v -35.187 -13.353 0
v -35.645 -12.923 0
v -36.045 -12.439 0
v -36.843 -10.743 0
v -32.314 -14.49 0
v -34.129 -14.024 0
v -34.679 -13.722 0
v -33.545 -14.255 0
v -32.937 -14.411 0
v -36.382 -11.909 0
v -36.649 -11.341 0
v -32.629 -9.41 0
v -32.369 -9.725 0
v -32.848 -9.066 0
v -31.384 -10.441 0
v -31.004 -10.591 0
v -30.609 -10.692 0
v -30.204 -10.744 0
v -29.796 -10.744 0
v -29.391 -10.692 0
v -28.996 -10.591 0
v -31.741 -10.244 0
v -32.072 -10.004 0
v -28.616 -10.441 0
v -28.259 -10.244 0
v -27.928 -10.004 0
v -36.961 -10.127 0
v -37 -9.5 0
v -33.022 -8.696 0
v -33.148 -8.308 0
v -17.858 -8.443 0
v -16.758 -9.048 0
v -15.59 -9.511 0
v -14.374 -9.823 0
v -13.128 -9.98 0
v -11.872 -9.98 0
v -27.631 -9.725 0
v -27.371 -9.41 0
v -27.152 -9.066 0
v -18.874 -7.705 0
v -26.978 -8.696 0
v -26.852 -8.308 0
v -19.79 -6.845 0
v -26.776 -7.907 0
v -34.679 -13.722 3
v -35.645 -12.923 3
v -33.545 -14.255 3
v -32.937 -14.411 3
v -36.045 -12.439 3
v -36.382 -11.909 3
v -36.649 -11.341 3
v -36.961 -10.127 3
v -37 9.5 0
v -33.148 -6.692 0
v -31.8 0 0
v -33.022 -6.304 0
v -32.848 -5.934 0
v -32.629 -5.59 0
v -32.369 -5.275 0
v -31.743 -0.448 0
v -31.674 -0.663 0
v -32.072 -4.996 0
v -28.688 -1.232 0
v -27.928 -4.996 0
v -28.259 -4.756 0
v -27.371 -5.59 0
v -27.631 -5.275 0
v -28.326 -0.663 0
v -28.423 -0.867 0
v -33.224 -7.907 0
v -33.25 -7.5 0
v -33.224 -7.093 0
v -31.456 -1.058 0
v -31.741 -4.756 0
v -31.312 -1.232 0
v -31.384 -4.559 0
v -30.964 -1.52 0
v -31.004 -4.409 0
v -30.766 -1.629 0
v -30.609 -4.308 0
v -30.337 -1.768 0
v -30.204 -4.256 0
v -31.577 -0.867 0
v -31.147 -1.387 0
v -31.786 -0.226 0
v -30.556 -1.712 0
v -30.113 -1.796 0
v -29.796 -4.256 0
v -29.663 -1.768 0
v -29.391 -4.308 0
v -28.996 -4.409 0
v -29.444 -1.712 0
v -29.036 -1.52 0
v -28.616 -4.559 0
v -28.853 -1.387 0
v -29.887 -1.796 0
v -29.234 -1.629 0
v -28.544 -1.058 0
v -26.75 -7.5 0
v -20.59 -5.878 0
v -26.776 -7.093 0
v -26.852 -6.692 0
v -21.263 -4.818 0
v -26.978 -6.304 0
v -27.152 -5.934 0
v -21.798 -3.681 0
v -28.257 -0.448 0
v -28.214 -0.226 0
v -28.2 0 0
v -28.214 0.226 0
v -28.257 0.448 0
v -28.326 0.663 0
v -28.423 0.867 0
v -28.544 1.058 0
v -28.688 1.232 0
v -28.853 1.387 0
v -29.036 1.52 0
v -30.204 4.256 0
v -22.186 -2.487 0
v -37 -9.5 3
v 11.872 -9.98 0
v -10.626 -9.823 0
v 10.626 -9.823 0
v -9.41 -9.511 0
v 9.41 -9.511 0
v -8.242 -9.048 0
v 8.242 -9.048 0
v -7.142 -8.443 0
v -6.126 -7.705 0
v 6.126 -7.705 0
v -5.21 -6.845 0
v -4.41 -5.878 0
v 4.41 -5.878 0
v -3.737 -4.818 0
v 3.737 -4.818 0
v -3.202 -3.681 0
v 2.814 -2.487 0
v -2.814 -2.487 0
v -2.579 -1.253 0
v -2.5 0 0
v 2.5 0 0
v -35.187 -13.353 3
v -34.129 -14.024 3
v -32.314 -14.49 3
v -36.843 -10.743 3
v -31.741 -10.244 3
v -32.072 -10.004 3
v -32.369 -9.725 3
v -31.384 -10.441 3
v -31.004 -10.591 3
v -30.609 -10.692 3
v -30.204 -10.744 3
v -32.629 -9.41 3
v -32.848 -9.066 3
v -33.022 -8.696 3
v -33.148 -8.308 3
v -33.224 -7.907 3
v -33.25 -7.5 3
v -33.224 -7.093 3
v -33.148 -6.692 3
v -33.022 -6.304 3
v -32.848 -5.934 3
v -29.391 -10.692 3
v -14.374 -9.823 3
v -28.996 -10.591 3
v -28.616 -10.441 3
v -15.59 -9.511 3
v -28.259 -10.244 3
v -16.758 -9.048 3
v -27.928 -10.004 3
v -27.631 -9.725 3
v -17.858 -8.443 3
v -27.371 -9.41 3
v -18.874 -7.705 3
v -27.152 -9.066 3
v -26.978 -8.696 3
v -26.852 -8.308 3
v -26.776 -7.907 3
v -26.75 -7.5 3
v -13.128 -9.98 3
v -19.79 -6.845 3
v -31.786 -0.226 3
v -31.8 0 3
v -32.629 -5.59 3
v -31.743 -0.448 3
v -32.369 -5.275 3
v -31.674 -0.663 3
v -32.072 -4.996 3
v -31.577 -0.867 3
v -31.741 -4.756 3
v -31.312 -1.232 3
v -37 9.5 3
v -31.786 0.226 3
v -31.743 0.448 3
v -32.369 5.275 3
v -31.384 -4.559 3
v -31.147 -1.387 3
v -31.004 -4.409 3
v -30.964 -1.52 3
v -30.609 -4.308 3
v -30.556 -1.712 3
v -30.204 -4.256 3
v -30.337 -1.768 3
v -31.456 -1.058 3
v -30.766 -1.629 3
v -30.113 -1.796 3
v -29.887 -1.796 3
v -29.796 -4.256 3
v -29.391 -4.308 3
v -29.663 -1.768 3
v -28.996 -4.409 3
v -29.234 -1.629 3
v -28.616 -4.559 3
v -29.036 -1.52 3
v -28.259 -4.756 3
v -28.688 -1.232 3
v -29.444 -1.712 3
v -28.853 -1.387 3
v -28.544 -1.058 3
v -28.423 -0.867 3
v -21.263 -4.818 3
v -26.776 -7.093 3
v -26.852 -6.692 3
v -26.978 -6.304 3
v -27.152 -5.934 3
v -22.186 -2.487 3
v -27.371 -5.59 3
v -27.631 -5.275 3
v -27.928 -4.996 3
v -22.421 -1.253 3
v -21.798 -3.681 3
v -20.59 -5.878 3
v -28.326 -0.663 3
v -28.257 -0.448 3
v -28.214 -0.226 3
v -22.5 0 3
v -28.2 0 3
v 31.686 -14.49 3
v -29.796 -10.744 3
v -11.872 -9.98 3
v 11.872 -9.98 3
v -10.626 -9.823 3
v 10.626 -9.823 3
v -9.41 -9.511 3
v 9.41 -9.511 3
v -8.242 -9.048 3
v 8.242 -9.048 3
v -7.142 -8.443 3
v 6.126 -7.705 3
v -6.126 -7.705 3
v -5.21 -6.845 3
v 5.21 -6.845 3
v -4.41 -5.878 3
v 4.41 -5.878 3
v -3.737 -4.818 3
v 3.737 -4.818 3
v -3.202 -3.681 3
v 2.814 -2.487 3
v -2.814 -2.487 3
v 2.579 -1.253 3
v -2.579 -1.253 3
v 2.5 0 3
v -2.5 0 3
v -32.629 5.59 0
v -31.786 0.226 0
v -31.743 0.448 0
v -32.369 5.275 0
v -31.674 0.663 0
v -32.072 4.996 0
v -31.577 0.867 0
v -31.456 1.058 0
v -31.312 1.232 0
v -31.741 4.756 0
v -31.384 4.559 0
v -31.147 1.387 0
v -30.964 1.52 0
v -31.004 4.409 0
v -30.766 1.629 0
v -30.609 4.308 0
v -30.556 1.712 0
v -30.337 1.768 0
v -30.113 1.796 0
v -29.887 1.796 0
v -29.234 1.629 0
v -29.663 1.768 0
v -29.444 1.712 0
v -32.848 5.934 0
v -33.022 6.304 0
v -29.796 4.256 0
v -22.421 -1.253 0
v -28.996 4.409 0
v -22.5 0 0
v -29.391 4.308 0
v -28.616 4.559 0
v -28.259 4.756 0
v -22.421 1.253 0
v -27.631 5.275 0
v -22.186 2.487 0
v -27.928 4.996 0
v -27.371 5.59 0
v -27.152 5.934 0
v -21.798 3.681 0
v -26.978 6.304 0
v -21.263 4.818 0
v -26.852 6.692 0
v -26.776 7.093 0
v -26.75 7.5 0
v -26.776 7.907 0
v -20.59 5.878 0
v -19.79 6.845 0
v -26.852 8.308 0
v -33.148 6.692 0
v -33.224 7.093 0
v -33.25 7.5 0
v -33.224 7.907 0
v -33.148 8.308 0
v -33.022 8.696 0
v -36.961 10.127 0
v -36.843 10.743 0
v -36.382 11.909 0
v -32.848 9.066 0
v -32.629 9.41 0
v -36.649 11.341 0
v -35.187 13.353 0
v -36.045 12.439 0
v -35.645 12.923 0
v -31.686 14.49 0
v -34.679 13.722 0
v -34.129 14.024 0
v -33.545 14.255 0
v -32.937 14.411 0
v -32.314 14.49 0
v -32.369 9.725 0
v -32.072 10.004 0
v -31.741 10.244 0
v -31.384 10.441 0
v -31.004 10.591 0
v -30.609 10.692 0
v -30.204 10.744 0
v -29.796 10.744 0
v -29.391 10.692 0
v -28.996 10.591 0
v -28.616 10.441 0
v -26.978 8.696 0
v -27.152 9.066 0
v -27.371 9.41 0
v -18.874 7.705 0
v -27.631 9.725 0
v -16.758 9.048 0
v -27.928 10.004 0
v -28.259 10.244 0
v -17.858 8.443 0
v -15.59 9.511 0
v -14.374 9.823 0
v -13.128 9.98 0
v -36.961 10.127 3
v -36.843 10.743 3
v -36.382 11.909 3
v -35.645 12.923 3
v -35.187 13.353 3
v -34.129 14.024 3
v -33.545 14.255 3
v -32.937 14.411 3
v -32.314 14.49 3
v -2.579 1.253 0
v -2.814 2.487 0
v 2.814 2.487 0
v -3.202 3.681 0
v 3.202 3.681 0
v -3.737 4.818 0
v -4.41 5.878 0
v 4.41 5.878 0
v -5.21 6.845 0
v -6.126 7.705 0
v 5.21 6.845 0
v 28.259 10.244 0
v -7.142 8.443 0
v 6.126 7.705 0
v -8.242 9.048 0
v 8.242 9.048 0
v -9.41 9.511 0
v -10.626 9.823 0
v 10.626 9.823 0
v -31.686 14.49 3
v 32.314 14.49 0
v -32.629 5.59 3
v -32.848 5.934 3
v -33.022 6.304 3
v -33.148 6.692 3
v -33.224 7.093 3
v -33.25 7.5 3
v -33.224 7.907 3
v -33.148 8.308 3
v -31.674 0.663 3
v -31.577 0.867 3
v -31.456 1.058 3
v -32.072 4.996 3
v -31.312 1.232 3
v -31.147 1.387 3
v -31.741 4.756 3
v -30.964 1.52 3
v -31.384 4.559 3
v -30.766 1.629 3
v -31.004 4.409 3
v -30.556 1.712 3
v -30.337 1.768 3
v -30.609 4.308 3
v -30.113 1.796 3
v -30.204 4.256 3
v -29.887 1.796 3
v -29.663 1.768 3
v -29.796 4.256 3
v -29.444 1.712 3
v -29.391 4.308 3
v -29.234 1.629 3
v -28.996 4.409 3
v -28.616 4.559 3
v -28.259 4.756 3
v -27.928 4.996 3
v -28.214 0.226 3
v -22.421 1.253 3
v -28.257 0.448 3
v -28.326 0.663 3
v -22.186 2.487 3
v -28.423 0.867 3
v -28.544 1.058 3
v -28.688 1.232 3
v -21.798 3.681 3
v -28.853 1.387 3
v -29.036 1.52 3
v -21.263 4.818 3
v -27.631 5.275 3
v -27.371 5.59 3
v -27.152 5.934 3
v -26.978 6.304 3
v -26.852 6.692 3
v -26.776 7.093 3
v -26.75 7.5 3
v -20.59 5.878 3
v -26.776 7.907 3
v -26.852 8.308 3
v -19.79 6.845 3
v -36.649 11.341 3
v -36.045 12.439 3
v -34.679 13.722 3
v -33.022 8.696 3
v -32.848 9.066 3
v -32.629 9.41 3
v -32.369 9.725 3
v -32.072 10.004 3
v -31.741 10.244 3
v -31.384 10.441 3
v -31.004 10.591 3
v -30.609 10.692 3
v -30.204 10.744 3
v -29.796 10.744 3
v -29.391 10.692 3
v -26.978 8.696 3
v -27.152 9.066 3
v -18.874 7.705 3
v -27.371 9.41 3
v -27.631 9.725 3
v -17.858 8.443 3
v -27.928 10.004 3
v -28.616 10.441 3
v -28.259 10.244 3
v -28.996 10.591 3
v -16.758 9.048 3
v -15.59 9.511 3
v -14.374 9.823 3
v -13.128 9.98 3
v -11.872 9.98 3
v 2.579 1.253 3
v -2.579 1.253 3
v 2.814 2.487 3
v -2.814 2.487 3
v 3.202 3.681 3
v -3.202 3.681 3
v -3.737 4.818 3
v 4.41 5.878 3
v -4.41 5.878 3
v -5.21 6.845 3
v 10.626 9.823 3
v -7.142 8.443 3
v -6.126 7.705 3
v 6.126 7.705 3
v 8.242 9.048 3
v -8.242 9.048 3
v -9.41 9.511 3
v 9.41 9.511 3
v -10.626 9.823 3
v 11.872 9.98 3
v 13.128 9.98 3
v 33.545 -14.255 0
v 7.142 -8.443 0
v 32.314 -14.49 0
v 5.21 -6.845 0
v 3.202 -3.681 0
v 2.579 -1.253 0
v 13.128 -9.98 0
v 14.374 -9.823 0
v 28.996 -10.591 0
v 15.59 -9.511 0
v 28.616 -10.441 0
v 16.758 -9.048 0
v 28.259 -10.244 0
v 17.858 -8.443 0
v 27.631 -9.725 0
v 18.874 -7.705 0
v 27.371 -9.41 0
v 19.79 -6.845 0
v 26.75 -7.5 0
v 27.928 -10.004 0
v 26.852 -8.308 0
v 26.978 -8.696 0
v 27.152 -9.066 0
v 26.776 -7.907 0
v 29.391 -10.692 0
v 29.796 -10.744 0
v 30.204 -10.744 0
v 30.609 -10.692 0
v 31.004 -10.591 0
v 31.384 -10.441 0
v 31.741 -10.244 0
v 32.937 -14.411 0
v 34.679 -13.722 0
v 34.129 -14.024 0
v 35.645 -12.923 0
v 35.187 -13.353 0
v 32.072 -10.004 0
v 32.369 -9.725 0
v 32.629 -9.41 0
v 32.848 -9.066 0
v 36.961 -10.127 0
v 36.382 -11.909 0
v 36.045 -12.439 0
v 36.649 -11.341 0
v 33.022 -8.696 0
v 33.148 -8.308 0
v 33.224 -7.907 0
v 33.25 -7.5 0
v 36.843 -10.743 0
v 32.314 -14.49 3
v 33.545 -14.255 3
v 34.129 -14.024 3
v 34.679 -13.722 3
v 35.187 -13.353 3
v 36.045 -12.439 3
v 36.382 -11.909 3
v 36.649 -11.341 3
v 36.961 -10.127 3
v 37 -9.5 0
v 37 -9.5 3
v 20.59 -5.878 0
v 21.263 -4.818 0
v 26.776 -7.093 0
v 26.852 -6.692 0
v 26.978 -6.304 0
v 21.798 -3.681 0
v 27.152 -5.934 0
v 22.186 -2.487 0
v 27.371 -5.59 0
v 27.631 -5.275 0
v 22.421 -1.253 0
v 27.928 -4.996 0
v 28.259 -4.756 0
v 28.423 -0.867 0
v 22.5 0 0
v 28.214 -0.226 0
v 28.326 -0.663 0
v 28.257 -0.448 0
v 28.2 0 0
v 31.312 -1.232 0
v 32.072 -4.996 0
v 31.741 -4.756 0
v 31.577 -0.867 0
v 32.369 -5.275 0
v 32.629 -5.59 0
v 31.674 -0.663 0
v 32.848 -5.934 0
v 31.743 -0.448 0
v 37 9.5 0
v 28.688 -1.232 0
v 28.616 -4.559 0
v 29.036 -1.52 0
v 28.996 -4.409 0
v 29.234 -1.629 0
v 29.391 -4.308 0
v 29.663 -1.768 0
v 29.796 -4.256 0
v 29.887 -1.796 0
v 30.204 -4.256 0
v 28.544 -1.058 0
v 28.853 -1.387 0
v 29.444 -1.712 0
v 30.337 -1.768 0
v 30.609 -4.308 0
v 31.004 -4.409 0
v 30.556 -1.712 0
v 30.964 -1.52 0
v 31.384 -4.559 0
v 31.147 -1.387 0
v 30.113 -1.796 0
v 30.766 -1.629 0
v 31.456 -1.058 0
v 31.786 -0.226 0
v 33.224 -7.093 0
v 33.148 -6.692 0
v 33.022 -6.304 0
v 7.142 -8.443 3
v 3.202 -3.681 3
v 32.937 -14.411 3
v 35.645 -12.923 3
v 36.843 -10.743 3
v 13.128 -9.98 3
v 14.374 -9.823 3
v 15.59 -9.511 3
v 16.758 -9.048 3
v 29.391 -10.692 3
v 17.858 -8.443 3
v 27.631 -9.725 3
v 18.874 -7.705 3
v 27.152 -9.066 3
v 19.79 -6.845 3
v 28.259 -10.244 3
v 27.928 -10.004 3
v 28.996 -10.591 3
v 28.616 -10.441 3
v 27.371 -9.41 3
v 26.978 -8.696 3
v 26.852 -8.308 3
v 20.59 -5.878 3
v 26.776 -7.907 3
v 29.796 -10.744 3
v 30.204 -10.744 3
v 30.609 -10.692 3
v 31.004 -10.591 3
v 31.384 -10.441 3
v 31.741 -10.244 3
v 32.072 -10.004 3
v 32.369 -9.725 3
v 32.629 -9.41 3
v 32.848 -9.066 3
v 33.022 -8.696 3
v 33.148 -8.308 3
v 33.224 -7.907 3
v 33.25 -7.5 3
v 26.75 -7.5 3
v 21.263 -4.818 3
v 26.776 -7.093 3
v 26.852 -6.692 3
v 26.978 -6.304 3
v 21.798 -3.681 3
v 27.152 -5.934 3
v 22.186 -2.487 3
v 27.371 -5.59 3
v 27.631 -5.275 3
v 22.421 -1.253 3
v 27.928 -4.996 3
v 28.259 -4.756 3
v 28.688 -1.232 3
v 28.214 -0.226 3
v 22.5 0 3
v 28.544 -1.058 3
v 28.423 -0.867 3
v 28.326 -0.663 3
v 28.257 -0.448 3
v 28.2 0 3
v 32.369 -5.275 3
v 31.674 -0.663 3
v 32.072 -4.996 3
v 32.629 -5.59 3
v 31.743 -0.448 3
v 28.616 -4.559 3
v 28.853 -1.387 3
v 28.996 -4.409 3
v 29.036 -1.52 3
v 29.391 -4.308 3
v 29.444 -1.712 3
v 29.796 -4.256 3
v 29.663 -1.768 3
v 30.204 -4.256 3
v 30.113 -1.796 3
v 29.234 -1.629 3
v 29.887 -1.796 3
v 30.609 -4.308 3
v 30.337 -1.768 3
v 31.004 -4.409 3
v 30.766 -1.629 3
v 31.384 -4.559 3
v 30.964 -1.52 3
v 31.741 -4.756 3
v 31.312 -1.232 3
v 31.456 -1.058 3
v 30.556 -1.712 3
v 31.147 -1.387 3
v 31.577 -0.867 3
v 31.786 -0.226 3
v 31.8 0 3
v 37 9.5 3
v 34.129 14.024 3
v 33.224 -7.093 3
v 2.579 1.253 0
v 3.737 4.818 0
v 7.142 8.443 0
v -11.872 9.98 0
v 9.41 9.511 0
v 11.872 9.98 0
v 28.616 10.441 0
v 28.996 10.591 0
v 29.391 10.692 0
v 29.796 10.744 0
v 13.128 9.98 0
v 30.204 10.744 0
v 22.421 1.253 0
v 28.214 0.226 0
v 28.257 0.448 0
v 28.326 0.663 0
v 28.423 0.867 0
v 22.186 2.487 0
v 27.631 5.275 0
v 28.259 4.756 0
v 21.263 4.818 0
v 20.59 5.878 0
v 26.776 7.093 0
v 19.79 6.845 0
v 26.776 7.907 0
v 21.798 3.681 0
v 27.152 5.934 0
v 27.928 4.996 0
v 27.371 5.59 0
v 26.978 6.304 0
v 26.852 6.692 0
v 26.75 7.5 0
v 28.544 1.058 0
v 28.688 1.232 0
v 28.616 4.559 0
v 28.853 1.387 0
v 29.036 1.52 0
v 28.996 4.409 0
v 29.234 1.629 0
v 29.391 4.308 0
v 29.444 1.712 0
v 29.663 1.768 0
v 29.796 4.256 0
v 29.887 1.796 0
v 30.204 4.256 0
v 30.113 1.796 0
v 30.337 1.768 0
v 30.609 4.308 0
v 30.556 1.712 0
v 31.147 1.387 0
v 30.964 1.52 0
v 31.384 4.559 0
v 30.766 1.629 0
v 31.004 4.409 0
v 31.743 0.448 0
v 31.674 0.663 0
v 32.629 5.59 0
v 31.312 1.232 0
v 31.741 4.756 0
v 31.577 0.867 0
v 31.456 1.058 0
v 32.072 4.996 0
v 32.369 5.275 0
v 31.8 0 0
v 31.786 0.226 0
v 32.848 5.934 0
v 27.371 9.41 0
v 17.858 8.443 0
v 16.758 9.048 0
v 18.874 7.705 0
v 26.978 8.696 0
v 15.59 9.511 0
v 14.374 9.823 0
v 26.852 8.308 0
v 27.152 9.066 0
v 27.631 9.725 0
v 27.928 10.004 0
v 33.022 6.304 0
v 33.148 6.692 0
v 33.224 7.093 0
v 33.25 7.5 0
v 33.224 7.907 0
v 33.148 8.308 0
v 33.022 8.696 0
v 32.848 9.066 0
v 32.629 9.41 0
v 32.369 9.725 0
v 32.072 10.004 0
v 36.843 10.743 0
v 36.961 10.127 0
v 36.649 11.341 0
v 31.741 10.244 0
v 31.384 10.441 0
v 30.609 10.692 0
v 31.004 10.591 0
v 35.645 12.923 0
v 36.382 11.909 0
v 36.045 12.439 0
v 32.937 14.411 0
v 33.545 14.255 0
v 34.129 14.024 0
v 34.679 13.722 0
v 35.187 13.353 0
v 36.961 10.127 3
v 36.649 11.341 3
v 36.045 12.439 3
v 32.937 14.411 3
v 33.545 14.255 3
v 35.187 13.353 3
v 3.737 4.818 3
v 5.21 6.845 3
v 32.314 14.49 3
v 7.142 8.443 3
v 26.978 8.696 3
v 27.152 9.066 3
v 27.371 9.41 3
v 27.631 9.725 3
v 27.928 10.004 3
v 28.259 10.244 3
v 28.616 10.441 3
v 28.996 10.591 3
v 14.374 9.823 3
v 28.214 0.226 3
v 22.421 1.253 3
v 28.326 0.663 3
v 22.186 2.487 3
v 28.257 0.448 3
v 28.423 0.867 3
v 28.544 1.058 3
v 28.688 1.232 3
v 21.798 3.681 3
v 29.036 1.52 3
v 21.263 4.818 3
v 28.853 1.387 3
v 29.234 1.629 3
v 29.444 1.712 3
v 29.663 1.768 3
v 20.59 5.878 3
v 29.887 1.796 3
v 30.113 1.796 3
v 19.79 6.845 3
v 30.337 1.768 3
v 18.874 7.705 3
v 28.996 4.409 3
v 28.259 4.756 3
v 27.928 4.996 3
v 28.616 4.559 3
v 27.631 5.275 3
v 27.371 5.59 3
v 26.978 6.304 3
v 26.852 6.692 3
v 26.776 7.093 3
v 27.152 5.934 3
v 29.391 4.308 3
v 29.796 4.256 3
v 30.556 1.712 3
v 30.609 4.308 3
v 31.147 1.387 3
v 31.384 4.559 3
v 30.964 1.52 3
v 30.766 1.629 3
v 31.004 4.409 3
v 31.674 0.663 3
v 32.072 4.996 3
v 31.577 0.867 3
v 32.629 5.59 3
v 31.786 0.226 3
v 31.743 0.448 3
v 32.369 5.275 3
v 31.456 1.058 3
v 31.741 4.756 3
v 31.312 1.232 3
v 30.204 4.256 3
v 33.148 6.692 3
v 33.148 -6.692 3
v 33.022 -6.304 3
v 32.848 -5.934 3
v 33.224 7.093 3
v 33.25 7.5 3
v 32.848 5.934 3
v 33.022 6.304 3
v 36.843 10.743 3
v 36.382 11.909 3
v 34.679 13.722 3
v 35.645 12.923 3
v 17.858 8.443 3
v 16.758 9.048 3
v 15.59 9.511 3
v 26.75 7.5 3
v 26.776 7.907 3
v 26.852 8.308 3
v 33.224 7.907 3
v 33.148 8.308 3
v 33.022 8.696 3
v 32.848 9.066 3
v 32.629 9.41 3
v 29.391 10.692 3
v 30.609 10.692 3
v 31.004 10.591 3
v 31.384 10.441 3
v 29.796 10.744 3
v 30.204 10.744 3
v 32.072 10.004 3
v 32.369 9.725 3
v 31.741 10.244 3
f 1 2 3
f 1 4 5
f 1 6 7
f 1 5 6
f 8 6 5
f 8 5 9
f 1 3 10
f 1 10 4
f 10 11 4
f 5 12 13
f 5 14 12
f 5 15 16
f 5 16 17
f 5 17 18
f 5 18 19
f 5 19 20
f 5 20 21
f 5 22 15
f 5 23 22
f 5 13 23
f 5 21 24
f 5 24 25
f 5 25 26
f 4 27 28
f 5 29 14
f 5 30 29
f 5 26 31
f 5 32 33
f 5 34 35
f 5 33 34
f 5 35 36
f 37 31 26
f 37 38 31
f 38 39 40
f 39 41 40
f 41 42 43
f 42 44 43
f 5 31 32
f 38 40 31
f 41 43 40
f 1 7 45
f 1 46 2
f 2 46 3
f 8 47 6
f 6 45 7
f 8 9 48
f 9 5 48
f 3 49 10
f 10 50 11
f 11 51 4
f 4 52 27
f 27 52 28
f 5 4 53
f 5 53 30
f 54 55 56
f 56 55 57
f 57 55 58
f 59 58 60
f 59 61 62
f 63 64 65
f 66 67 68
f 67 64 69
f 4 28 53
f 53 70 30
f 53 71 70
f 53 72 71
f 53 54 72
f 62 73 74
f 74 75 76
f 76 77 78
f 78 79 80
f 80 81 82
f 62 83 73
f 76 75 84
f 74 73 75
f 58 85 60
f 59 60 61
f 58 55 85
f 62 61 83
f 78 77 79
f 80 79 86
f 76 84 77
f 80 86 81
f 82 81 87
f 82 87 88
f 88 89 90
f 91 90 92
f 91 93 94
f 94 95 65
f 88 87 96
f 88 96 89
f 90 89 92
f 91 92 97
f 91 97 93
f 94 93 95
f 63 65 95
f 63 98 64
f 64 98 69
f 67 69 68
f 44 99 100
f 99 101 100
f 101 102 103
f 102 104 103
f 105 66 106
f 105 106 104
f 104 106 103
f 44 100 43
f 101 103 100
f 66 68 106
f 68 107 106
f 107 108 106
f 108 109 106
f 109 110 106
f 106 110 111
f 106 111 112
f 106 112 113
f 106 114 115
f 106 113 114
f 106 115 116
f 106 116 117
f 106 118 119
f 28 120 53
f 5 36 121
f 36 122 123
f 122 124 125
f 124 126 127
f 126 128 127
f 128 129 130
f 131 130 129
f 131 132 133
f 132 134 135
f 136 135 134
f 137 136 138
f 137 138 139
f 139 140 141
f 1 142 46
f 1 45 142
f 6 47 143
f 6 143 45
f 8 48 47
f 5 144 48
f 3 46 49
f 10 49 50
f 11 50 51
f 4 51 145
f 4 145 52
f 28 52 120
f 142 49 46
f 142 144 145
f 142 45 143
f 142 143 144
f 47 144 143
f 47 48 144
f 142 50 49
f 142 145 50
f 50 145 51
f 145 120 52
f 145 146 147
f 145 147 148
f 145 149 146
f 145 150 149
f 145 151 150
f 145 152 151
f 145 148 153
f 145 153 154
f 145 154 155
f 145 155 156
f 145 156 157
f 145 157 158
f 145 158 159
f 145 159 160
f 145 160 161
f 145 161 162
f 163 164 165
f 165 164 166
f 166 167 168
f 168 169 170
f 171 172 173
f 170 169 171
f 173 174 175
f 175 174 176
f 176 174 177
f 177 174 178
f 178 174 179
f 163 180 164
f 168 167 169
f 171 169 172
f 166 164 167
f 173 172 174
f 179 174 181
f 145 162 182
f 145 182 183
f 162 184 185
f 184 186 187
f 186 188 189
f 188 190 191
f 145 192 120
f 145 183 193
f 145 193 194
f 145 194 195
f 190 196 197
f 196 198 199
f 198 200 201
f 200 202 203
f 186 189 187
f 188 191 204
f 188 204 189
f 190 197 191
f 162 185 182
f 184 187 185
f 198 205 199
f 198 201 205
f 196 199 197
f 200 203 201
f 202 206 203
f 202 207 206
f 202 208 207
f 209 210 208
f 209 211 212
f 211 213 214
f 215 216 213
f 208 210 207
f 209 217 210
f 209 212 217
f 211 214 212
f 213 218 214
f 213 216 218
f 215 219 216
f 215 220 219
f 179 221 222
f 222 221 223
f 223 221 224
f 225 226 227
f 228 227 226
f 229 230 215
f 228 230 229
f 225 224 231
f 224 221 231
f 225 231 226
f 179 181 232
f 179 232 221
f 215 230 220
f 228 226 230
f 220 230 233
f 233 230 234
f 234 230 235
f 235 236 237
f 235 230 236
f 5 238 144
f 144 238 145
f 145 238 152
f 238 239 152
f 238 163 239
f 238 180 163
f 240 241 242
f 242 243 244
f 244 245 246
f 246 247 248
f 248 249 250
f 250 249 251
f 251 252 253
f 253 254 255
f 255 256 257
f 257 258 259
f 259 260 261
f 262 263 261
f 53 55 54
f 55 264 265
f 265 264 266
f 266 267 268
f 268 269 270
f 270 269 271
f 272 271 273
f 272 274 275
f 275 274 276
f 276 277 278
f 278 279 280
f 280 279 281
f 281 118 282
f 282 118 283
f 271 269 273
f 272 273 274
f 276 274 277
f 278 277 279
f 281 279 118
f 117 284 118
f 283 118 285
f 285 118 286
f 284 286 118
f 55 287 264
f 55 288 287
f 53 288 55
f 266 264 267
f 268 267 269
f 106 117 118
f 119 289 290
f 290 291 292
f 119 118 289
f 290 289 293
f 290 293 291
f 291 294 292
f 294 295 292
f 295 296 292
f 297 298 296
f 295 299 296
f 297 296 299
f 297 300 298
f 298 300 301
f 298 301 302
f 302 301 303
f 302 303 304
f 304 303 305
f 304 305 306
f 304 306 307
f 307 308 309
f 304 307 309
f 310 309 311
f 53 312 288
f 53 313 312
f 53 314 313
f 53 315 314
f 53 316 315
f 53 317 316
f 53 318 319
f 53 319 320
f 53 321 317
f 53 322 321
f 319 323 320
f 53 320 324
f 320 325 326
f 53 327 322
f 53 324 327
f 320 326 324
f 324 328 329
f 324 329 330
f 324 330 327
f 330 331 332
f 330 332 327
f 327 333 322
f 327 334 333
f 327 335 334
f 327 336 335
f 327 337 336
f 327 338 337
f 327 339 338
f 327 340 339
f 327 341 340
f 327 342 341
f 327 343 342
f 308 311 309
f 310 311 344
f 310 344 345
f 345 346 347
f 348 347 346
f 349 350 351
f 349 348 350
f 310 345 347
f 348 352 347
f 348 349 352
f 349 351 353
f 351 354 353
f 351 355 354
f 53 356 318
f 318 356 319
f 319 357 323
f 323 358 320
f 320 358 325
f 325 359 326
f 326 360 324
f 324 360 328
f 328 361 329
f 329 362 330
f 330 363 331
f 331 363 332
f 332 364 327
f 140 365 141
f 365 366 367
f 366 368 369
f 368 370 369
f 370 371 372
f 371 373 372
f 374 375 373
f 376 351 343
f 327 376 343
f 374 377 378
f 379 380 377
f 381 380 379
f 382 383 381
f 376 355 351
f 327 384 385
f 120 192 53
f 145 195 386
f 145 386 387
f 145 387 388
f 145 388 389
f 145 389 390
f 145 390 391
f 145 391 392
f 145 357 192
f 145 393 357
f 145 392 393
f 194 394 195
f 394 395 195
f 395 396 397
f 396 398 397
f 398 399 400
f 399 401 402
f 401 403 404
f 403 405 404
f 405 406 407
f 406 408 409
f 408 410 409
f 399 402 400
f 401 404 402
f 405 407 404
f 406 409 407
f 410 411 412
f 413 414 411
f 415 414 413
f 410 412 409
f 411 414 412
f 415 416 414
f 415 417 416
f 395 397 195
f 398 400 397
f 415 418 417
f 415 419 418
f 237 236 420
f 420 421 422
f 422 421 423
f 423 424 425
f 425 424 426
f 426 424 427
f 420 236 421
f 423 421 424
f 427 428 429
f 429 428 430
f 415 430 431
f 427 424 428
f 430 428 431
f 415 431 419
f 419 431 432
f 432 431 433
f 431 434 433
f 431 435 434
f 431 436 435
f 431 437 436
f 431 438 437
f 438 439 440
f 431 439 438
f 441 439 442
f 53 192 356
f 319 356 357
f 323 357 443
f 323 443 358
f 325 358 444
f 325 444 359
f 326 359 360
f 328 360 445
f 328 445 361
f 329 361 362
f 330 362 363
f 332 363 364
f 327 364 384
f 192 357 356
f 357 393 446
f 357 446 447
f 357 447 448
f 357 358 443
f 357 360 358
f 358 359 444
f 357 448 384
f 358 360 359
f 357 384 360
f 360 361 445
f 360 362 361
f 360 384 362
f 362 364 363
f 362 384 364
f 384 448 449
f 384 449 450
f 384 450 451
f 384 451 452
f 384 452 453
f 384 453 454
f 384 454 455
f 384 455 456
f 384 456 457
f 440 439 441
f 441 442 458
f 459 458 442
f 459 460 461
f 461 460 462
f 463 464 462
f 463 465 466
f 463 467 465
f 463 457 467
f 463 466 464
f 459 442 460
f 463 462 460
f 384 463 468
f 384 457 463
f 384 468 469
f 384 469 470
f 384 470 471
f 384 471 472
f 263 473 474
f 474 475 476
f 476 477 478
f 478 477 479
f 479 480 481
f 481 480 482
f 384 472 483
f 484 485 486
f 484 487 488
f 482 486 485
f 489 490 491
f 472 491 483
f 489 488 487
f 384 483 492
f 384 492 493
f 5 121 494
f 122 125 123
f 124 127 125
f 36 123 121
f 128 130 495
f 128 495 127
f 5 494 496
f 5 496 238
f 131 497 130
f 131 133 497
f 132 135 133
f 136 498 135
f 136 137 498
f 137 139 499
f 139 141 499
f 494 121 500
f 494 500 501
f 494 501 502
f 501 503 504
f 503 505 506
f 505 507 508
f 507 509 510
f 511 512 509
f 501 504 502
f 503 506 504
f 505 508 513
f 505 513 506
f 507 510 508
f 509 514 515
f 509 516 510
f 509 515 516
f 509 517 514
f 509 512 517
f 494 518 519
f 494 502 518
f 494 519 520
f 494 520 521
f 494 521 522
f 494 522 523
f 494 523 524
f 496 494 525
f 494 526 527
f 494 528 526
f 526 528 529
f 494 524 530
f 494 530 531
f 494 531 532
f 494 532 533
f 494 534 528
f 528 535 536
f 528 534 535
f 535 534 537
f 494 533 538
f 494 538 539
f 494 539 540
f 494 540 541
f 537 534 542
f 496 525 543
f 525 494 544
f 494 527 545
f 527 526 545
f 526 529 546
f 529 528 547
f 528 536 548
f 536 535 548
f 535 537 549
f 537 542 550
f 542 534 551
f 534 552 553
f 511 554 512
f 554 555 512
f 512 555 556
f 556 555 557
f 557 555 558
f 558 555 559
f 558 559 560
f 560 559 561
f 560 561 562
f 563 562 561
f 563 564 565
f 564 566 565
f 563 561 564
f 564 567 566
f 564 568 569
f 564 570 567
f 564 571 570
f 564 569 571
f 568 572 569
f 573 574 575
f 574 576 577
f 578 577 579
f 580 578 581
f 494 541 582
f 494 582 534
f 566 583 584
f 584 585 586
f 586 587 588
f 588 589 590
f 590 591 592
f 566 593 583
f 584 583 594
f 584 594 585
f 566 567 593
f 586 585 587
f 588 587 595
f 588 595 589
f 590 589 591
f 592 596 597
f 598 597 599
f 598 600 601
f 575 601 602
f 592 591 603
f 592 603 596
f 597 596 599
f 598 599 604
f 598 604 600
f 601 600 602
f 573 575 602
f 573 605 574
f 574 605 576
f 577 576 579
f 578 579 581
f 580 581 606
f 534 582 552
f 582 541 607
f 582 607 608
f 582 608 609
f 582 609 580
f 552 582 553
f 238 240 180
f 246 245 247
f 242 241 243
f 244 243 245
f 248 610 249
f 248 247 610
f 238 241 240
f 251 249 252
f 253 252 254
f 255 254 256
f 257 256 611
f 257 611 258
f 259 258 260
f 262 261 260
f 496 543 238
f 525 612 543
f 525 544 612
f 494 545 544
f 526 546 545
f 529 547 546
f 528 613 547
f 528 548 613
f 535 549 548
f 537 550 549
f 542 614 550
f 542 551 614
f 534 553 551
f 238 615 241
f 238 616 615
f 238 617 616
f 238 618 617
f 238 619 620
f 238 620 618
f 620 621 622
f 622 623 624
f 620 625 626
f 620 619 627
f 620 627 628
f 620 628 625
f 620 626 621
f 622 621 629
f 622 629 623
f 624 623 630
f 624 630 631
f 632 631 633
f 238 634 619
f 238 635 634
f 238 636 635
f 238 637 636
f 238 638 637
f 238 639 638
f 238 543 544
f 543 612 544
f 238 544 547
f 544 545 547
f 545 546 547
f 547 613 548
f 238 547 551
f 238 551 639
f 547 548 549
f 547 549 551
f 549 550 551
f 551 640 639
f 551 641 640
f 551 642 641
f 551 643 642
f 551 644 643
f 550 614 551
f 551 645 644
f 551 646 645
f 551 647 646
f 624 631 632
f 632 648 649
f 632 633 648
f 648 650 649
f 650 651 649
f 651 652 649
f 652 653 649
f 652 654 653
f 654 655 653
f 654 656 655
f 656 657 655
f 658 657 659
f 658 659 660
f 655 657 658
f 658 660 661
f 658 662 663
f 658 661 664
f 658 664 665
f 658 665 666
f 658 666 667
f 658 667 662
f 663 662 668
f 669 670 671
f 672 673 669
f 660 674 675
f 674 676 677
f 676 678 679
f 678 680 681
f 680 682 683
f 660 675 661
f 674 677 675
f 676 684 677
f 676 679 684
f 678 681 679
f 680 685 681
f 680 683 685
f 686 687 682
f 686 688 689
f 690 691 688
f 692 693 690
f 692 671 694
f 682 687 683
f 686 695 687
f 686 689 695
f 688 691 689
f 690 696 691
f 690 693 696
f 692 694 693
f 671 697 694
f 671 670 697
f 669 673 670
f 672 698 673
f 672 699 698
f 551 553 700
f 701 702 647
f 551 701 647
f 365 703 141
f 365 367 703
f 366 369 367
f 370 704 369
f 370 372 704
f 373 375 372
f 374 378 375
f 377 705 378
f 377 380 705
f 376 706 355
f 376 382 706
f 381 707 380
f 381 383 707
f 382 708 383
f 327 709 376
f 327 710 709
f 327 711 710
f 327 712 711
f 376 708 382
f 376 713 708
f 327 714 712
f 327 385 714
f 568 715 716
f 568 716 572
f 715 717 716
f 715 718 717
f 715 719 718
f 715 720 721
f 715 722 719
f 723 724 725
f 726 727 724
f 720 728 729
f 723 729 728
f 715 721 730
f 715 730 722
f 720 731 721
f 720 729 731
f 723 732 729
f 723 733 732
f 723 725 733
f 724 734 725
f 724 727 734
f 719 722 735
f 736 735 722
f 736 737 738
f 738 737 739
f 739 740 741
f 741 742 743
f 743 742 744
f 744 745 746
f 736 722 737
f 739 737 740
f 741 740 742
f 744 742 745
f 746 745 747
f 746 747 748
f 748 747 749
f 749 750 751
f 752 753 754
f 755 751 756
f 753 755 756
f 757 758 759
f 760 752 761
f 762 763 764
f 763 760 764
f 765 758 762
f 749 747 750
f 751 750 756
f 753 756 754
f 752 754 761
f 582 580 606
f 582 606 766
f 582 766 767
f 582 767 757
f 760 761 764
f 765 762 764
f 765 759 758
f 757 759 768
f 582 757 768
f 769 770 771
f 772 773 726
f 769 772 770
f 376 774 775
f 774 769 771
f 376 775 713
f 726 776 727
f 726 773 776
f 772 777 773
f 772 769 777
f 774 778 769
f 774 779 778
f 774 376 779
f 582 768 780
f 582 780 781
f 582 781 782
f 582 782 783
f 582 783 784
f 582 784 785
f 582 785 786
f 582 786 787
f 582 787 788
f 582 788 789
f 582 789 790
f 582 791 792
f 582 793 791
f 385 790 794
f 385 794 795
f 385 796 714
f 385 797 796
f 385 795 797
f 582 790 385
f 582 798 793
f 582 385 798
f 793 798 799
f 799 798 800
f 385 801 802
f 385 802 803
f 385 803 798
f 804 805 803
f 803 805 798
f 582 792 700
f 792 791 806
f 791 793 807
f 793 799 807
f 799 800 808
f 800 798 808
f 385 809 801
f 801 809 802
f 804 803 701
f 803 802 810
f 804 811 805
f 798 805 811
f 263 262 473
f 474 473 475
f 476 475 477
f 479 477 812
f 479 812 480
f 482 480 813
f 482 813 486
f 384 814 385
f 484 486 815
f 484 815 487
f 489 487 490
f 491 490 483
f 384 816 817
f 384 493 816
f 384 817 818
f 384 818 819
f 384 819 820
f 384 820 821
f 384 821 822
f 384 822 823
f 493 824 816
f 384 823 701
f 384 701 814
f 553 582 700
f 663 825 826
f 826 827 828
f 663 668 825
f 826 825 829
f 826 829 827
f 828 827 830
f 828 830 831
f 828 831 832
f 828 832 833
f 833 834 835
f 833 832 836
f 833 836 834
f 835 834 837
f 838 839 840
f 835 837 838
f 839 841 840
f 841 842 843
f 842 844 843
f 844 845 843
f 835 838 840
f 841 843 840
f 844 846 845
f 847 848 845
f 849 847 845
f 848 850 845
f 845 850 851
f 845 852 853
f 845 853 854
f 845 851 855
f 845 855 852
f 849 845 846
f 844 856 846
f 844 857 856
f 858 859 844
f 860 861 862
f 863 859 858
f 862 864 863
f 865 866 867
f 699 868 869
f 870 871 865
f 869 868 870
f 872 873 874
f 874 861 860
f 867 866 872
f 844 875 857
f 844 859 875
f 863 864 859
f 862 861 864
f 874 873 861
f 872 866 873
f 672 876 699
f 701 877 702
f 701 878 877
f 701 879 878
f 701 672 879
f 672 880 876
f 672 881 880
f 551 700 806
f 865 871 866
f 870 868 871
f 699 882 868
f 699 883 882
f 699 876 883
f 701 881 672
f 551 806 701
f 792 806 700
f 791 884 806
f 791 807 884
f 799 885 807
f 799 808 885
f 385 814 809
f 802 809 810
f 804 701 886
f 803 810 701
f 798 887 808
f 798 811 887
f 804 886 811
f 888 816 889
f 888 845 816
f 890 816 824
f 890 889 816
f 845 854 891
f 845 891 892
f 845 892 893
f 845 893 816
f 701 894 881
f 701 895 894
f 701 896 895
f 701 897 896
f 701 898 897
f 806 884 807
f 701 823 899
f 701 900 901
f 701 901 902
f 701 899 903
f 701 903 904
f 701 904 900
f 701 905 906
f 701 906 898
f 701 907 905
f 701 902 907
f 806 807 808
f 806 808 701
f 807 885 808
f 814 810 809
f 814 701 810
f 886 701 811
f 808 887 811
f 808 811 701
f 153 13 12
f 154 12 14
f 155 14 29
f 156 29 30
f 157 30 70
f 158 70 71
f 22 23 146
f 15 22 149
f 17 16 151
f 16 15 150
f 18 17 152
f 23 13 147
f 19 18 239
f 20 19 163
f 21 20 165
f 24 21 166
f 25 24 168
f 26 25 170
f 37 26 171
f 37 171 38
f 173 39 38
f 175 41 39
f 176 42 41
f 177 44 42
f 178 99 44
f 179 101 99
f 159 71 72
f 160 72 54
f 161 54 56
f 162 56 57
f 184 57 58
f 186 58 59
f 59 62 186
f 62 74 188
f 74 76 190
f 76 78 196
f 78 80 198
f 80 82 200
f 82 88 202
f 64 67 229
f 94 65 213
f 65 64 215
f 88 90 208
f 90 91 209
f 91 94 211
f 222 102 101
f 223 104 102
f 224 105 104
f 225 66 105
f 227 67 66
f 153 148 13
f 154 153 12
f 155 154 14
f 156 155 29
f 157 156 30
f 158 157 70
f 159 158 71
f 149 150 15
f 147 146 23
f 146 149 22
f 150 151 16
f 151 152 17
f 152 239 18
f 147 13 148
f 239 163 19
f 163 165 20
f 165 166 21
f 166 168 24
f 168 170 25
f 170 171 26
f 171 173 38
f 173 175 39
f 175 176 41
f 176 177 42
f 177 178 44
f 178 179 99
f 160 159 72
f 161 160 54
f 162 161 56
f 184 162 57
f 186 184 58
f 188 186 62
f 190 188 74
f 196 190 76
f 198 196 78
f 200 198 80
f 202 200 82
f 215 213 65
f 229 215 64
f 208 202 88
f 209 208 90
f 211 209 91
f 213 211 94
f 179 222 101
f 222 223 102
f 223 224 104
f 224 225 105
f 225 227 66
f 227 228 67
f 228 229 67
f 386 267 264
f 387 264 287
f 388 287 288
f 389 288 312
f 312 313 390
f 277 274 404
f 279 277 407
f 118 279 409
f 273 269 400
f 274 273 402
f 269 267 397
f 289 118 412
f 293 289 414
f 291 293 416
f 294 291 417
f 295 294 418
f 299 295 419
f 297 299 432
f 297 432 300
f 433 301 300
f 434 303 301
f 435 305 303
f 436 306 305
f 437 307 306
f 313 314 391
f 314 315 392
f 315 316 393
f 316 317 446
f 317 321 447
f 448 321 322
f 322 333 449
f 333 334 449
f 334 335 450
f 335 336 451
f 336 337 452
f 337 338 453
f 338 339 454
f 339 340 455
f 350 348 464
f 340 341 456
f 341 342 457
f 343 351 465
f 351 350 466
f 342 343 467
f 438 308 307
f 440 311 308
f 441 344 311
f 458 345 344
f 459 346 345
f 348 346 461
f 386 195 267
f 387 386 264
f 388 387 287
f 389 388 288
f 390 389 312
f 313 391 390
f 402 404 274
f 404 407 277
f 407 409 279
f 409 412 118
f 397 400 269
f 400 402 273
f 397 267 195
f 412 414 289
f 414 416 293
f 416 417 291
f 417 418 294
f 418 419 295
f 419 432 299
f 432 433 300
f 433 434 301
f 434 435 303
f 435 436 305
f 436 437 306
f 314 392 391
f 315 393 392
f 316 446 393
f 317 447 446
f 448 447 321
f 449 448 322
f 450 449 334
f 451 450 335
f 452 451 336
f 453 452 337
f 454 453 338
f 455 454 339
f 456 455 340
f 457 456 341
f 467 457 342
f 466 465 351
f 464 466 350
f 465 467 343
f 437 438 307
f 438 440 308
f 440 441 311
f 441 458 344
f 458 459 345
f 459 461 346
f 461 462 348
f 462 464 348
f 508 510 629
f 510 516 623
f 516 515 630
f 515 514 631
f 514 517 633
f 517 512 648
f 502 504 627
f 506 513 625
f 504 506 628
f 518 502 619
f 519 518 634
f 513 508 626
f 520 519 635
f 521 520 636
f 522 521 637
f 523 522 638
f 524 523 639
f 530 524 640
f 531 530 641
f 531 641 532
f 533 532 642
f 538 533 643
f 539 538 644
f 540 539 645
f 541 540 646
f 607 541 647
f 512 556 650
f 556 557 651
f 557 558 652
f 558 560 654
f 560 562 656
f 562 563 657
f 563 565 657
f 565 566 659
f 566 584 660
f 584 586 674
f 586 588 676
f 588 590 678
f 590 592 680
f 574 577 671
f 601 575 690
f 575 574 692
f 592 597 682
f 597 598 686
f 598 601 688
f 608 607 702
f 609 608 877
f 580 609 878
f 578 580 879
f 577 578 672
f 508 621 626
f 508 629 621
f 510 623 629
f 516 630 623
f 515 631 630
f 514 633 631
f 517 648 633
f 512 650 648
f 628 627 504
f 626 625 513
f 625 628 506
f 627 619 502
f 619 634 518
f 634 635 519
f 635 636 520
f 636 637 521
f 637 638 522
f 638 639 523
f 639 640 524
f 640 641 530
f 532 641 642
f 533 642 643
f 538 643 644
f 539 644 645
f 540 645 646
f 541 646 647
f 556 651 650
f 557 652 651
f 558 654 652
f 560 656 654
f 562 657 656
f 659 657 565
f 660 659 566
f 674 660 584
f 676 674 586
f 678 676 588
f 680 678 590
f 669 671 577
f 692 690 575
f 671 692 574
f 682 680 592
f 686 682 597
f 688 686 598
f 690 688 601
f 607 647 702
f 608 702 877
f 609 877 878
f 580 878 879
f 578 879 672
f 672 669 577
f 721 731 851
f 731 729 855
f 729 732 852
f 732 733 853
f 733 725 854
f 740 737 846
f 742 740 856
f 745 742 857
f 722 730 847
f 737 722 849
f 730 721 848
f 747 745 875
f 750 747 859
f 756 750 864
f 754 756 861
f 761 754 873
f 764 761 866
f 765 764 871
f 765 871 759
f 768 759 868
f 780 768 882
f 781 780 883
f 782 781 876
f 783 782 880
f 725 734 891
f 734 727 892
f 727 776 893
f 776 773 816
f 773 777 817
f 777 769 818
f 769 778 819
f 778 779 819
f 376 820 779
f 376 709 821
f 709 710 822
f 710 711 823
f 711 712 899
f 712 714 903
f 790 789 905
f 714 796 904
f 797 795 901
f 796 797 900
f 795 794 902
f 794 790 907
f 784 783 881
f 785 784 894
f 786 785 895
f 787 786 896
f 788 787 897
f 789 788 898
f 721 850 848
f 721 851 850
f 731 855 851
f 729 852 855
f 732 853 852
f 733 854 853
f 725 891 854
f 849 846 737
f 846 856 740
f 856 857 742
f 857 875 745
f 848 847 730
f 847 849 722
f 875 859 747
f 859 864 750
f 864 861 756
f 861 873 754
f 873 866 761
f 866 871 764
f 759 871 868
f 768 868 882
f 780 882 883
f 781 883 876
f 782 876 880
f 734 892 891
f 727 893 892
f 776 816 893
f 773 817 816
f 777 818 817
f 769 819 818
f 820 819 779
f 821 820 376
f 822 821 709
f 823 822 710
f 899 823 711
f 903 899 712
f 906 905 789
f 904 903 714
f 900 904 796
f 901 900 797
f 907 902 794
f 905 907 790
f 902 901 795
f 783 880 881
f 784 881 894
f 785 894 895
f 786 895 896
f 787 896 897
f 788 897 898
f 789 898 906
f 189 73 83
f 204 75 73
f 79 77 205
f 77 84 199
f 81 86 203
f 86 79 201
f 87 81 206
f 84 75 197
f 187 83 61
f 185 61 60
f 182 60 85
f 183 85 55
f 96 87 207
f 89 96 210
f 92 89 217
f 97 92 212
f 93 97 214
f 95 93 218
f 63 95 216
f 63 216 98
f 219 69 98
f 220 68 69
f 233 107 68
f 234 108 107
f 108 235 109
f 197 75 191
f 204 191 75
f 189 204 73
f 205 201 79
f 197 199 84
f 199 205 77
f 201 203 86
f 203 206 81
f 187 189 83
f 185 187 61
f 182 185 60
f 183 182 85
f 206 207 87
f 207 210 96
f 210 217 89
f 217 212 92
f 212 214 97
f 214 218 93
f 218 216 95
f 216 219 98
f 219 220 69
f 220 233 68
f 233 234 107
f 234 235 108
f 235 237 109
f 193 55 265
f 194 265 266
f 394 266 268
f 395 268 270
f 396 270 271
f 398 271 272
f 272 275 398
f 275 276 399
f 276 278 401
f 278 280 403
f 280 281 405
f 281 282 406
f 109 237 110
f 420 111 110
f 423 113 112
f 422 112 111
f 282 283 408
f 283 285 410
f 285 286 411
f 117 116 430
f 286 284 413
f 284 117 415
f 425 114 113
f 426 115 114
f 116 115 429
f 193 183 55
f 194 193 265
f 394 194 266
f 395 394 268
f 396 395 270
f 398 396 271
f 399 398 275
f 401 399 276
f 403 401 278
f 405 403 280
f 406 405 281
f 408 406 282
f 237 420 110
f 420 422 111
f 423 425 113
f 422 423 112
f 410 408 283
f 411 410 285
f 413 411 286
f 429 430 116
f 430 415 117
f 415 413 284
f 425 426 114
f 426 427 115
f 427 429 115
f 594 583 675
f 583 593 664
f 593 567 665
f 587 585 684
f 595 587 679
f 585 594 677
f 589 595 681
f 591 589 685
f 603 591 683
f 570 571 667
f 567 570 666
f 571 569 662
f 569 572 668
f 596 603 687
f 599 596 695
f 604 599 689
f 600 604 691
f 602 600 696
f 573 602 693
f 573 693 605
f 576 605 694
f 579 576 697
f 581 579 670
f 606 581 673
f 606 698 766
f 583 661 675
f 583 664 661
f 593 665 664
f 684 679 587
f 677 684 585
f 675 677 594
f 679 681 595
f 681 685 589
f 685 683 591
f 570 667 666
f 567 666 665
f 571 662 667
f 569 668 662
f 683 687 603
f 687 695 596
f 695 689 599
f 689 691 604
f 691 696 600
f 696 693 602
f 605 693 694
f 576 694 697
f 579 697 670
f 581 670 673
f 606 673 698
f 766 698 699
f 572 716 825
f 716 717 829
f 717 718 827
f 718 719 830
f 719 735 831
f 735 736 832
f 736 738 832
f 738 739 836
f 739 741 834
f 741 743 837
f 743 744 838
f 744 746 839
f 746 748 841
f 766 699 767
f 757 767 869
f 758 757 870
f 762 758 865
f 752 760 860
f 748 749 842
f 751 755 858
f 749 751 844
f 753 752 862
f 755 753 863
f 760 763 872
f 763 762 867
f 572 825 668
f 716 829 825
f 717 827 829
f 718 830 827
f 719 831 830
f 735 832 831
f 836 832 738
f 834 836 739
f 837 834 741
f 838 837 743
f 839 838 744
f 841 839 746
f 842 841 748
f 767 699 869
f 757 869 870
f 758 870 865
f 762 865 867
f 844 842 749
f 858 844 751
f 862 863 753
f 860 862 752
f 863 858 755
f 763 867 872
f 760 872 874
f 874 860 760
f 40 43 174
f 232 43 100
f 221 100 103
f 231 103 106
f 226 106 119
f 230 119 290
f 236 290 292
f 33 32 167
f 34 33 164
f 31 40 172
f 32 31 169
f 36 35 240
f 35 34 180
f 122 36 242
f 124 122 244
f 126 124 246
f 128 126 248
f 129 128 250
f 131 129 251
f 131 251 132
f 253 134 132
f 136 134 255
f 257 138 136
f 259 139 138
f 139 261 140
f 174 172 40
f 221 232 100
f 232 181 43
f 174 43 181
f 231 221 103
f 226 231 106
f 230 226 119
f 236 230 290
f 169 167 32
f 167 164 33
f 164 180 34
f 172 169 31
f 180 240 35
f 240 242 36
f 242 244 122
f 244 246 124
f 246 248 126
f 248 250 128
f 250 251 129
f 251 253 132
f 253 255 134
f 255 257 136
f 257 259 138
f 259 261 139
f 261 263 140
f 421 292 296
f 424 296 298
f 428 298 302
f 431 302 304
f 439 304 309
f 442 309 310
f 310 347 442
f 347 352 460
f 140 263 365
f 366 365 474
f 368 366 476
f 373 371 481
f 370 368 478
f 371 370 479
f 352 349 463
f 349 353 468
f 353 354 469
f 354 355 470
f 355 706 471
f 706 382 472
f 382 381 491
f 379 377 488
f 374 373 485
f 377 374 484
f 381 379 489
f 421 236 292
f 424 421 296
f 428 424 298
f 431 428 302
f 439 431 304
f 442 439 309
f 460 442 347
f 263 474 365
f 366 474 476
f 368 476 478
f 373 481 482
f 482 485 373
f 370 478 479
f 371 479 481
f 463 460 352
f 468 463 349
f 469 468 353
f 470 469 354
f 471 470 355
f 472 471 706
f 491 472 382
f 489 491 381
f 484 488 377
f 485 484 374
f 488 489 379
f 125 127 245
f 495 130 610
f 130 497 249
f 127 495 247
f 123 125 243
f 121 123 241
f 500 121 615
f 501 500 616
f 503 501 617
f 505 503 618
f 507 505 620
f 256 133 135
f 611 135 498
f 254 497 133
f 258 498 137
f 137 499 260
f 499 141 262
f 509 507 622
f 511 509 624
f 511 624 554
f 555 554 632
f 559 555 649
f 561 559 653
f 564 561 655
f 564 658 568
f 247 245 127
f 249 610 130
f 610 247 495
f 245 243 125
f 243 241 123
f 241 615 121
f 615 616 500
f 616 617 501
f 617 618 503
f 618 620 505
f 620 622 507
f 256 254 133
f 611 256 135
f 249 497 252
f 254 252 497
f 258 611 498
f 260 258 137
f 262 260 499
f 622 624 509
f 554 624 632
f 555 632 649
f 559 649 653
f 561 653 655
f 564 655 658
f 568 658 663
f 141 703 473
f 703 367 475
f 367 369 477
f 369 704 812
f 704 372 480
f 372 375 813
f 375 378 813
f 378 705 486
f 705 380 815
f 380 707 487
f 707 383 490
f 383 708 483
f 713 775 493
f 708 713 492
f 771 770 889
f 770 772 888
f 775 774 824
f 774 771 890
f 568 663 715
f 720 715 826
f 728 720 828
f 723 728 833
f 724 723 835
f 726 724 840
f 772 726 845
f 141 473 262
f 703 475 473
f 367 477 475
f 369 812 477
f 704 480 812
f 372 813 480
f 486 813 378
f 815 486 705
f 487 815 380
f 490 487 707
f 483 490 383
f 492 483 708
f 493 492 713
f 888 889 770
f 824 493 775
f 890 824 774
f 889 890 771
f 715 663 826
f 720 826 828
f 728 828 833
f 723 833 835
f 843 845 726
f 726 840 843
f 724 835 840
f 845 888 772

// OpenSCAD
$fn = 50;

difference() {
	union() {
		hull() {
			translate(v = [-32.0, 9.5, 0]) {
				cylinder(h = 3, r = 5);
			}
			translate(v = [32.0, 9.5, 0]) {
				cylinder(h = 3, r = 5);
			}
			translate(v = [-32.0, -9.5, 0]) {
				cylinder(h = 3, r = 5);
			}
			translate(v = [32.0, -9.5, 0]) {
				cylinder(h = 3, r = 5);
			}
		}
	}
	union() {
		translate(v = [-30.0, -7.5, 0]) {
			cylinder(h = 3, r = 3.25);
		}
		translate(v = [-30.0, 7.5, 0]) {
			cylinder(h = 3, r = 3.25);
		}
		translate(v = [30.0, -7.5, 0]) {
			cylinder(h = 3, r = 3.25);
		}
		translate(v = [30.0, 7.5, 0]) {
			cylinder(h = 3, r = 3.25);
		}
		translate(v = [-30.0, 0.0, 0]) {
			cylinder(h = 3, r = 1.8);
		}
		translate(v = [30.0, 0.0, 0]) {
			cylinder(h = 3, r = 1.8);
		}
		translate(v = [-12.5, 0, 0.0]) {
			cylinder(h = 3, r = 10.0);
		}
		translate(v = [12.5, 0, 0.0]) {
			cylinder(h = 3, r = 10.0);
		}
	}
}
